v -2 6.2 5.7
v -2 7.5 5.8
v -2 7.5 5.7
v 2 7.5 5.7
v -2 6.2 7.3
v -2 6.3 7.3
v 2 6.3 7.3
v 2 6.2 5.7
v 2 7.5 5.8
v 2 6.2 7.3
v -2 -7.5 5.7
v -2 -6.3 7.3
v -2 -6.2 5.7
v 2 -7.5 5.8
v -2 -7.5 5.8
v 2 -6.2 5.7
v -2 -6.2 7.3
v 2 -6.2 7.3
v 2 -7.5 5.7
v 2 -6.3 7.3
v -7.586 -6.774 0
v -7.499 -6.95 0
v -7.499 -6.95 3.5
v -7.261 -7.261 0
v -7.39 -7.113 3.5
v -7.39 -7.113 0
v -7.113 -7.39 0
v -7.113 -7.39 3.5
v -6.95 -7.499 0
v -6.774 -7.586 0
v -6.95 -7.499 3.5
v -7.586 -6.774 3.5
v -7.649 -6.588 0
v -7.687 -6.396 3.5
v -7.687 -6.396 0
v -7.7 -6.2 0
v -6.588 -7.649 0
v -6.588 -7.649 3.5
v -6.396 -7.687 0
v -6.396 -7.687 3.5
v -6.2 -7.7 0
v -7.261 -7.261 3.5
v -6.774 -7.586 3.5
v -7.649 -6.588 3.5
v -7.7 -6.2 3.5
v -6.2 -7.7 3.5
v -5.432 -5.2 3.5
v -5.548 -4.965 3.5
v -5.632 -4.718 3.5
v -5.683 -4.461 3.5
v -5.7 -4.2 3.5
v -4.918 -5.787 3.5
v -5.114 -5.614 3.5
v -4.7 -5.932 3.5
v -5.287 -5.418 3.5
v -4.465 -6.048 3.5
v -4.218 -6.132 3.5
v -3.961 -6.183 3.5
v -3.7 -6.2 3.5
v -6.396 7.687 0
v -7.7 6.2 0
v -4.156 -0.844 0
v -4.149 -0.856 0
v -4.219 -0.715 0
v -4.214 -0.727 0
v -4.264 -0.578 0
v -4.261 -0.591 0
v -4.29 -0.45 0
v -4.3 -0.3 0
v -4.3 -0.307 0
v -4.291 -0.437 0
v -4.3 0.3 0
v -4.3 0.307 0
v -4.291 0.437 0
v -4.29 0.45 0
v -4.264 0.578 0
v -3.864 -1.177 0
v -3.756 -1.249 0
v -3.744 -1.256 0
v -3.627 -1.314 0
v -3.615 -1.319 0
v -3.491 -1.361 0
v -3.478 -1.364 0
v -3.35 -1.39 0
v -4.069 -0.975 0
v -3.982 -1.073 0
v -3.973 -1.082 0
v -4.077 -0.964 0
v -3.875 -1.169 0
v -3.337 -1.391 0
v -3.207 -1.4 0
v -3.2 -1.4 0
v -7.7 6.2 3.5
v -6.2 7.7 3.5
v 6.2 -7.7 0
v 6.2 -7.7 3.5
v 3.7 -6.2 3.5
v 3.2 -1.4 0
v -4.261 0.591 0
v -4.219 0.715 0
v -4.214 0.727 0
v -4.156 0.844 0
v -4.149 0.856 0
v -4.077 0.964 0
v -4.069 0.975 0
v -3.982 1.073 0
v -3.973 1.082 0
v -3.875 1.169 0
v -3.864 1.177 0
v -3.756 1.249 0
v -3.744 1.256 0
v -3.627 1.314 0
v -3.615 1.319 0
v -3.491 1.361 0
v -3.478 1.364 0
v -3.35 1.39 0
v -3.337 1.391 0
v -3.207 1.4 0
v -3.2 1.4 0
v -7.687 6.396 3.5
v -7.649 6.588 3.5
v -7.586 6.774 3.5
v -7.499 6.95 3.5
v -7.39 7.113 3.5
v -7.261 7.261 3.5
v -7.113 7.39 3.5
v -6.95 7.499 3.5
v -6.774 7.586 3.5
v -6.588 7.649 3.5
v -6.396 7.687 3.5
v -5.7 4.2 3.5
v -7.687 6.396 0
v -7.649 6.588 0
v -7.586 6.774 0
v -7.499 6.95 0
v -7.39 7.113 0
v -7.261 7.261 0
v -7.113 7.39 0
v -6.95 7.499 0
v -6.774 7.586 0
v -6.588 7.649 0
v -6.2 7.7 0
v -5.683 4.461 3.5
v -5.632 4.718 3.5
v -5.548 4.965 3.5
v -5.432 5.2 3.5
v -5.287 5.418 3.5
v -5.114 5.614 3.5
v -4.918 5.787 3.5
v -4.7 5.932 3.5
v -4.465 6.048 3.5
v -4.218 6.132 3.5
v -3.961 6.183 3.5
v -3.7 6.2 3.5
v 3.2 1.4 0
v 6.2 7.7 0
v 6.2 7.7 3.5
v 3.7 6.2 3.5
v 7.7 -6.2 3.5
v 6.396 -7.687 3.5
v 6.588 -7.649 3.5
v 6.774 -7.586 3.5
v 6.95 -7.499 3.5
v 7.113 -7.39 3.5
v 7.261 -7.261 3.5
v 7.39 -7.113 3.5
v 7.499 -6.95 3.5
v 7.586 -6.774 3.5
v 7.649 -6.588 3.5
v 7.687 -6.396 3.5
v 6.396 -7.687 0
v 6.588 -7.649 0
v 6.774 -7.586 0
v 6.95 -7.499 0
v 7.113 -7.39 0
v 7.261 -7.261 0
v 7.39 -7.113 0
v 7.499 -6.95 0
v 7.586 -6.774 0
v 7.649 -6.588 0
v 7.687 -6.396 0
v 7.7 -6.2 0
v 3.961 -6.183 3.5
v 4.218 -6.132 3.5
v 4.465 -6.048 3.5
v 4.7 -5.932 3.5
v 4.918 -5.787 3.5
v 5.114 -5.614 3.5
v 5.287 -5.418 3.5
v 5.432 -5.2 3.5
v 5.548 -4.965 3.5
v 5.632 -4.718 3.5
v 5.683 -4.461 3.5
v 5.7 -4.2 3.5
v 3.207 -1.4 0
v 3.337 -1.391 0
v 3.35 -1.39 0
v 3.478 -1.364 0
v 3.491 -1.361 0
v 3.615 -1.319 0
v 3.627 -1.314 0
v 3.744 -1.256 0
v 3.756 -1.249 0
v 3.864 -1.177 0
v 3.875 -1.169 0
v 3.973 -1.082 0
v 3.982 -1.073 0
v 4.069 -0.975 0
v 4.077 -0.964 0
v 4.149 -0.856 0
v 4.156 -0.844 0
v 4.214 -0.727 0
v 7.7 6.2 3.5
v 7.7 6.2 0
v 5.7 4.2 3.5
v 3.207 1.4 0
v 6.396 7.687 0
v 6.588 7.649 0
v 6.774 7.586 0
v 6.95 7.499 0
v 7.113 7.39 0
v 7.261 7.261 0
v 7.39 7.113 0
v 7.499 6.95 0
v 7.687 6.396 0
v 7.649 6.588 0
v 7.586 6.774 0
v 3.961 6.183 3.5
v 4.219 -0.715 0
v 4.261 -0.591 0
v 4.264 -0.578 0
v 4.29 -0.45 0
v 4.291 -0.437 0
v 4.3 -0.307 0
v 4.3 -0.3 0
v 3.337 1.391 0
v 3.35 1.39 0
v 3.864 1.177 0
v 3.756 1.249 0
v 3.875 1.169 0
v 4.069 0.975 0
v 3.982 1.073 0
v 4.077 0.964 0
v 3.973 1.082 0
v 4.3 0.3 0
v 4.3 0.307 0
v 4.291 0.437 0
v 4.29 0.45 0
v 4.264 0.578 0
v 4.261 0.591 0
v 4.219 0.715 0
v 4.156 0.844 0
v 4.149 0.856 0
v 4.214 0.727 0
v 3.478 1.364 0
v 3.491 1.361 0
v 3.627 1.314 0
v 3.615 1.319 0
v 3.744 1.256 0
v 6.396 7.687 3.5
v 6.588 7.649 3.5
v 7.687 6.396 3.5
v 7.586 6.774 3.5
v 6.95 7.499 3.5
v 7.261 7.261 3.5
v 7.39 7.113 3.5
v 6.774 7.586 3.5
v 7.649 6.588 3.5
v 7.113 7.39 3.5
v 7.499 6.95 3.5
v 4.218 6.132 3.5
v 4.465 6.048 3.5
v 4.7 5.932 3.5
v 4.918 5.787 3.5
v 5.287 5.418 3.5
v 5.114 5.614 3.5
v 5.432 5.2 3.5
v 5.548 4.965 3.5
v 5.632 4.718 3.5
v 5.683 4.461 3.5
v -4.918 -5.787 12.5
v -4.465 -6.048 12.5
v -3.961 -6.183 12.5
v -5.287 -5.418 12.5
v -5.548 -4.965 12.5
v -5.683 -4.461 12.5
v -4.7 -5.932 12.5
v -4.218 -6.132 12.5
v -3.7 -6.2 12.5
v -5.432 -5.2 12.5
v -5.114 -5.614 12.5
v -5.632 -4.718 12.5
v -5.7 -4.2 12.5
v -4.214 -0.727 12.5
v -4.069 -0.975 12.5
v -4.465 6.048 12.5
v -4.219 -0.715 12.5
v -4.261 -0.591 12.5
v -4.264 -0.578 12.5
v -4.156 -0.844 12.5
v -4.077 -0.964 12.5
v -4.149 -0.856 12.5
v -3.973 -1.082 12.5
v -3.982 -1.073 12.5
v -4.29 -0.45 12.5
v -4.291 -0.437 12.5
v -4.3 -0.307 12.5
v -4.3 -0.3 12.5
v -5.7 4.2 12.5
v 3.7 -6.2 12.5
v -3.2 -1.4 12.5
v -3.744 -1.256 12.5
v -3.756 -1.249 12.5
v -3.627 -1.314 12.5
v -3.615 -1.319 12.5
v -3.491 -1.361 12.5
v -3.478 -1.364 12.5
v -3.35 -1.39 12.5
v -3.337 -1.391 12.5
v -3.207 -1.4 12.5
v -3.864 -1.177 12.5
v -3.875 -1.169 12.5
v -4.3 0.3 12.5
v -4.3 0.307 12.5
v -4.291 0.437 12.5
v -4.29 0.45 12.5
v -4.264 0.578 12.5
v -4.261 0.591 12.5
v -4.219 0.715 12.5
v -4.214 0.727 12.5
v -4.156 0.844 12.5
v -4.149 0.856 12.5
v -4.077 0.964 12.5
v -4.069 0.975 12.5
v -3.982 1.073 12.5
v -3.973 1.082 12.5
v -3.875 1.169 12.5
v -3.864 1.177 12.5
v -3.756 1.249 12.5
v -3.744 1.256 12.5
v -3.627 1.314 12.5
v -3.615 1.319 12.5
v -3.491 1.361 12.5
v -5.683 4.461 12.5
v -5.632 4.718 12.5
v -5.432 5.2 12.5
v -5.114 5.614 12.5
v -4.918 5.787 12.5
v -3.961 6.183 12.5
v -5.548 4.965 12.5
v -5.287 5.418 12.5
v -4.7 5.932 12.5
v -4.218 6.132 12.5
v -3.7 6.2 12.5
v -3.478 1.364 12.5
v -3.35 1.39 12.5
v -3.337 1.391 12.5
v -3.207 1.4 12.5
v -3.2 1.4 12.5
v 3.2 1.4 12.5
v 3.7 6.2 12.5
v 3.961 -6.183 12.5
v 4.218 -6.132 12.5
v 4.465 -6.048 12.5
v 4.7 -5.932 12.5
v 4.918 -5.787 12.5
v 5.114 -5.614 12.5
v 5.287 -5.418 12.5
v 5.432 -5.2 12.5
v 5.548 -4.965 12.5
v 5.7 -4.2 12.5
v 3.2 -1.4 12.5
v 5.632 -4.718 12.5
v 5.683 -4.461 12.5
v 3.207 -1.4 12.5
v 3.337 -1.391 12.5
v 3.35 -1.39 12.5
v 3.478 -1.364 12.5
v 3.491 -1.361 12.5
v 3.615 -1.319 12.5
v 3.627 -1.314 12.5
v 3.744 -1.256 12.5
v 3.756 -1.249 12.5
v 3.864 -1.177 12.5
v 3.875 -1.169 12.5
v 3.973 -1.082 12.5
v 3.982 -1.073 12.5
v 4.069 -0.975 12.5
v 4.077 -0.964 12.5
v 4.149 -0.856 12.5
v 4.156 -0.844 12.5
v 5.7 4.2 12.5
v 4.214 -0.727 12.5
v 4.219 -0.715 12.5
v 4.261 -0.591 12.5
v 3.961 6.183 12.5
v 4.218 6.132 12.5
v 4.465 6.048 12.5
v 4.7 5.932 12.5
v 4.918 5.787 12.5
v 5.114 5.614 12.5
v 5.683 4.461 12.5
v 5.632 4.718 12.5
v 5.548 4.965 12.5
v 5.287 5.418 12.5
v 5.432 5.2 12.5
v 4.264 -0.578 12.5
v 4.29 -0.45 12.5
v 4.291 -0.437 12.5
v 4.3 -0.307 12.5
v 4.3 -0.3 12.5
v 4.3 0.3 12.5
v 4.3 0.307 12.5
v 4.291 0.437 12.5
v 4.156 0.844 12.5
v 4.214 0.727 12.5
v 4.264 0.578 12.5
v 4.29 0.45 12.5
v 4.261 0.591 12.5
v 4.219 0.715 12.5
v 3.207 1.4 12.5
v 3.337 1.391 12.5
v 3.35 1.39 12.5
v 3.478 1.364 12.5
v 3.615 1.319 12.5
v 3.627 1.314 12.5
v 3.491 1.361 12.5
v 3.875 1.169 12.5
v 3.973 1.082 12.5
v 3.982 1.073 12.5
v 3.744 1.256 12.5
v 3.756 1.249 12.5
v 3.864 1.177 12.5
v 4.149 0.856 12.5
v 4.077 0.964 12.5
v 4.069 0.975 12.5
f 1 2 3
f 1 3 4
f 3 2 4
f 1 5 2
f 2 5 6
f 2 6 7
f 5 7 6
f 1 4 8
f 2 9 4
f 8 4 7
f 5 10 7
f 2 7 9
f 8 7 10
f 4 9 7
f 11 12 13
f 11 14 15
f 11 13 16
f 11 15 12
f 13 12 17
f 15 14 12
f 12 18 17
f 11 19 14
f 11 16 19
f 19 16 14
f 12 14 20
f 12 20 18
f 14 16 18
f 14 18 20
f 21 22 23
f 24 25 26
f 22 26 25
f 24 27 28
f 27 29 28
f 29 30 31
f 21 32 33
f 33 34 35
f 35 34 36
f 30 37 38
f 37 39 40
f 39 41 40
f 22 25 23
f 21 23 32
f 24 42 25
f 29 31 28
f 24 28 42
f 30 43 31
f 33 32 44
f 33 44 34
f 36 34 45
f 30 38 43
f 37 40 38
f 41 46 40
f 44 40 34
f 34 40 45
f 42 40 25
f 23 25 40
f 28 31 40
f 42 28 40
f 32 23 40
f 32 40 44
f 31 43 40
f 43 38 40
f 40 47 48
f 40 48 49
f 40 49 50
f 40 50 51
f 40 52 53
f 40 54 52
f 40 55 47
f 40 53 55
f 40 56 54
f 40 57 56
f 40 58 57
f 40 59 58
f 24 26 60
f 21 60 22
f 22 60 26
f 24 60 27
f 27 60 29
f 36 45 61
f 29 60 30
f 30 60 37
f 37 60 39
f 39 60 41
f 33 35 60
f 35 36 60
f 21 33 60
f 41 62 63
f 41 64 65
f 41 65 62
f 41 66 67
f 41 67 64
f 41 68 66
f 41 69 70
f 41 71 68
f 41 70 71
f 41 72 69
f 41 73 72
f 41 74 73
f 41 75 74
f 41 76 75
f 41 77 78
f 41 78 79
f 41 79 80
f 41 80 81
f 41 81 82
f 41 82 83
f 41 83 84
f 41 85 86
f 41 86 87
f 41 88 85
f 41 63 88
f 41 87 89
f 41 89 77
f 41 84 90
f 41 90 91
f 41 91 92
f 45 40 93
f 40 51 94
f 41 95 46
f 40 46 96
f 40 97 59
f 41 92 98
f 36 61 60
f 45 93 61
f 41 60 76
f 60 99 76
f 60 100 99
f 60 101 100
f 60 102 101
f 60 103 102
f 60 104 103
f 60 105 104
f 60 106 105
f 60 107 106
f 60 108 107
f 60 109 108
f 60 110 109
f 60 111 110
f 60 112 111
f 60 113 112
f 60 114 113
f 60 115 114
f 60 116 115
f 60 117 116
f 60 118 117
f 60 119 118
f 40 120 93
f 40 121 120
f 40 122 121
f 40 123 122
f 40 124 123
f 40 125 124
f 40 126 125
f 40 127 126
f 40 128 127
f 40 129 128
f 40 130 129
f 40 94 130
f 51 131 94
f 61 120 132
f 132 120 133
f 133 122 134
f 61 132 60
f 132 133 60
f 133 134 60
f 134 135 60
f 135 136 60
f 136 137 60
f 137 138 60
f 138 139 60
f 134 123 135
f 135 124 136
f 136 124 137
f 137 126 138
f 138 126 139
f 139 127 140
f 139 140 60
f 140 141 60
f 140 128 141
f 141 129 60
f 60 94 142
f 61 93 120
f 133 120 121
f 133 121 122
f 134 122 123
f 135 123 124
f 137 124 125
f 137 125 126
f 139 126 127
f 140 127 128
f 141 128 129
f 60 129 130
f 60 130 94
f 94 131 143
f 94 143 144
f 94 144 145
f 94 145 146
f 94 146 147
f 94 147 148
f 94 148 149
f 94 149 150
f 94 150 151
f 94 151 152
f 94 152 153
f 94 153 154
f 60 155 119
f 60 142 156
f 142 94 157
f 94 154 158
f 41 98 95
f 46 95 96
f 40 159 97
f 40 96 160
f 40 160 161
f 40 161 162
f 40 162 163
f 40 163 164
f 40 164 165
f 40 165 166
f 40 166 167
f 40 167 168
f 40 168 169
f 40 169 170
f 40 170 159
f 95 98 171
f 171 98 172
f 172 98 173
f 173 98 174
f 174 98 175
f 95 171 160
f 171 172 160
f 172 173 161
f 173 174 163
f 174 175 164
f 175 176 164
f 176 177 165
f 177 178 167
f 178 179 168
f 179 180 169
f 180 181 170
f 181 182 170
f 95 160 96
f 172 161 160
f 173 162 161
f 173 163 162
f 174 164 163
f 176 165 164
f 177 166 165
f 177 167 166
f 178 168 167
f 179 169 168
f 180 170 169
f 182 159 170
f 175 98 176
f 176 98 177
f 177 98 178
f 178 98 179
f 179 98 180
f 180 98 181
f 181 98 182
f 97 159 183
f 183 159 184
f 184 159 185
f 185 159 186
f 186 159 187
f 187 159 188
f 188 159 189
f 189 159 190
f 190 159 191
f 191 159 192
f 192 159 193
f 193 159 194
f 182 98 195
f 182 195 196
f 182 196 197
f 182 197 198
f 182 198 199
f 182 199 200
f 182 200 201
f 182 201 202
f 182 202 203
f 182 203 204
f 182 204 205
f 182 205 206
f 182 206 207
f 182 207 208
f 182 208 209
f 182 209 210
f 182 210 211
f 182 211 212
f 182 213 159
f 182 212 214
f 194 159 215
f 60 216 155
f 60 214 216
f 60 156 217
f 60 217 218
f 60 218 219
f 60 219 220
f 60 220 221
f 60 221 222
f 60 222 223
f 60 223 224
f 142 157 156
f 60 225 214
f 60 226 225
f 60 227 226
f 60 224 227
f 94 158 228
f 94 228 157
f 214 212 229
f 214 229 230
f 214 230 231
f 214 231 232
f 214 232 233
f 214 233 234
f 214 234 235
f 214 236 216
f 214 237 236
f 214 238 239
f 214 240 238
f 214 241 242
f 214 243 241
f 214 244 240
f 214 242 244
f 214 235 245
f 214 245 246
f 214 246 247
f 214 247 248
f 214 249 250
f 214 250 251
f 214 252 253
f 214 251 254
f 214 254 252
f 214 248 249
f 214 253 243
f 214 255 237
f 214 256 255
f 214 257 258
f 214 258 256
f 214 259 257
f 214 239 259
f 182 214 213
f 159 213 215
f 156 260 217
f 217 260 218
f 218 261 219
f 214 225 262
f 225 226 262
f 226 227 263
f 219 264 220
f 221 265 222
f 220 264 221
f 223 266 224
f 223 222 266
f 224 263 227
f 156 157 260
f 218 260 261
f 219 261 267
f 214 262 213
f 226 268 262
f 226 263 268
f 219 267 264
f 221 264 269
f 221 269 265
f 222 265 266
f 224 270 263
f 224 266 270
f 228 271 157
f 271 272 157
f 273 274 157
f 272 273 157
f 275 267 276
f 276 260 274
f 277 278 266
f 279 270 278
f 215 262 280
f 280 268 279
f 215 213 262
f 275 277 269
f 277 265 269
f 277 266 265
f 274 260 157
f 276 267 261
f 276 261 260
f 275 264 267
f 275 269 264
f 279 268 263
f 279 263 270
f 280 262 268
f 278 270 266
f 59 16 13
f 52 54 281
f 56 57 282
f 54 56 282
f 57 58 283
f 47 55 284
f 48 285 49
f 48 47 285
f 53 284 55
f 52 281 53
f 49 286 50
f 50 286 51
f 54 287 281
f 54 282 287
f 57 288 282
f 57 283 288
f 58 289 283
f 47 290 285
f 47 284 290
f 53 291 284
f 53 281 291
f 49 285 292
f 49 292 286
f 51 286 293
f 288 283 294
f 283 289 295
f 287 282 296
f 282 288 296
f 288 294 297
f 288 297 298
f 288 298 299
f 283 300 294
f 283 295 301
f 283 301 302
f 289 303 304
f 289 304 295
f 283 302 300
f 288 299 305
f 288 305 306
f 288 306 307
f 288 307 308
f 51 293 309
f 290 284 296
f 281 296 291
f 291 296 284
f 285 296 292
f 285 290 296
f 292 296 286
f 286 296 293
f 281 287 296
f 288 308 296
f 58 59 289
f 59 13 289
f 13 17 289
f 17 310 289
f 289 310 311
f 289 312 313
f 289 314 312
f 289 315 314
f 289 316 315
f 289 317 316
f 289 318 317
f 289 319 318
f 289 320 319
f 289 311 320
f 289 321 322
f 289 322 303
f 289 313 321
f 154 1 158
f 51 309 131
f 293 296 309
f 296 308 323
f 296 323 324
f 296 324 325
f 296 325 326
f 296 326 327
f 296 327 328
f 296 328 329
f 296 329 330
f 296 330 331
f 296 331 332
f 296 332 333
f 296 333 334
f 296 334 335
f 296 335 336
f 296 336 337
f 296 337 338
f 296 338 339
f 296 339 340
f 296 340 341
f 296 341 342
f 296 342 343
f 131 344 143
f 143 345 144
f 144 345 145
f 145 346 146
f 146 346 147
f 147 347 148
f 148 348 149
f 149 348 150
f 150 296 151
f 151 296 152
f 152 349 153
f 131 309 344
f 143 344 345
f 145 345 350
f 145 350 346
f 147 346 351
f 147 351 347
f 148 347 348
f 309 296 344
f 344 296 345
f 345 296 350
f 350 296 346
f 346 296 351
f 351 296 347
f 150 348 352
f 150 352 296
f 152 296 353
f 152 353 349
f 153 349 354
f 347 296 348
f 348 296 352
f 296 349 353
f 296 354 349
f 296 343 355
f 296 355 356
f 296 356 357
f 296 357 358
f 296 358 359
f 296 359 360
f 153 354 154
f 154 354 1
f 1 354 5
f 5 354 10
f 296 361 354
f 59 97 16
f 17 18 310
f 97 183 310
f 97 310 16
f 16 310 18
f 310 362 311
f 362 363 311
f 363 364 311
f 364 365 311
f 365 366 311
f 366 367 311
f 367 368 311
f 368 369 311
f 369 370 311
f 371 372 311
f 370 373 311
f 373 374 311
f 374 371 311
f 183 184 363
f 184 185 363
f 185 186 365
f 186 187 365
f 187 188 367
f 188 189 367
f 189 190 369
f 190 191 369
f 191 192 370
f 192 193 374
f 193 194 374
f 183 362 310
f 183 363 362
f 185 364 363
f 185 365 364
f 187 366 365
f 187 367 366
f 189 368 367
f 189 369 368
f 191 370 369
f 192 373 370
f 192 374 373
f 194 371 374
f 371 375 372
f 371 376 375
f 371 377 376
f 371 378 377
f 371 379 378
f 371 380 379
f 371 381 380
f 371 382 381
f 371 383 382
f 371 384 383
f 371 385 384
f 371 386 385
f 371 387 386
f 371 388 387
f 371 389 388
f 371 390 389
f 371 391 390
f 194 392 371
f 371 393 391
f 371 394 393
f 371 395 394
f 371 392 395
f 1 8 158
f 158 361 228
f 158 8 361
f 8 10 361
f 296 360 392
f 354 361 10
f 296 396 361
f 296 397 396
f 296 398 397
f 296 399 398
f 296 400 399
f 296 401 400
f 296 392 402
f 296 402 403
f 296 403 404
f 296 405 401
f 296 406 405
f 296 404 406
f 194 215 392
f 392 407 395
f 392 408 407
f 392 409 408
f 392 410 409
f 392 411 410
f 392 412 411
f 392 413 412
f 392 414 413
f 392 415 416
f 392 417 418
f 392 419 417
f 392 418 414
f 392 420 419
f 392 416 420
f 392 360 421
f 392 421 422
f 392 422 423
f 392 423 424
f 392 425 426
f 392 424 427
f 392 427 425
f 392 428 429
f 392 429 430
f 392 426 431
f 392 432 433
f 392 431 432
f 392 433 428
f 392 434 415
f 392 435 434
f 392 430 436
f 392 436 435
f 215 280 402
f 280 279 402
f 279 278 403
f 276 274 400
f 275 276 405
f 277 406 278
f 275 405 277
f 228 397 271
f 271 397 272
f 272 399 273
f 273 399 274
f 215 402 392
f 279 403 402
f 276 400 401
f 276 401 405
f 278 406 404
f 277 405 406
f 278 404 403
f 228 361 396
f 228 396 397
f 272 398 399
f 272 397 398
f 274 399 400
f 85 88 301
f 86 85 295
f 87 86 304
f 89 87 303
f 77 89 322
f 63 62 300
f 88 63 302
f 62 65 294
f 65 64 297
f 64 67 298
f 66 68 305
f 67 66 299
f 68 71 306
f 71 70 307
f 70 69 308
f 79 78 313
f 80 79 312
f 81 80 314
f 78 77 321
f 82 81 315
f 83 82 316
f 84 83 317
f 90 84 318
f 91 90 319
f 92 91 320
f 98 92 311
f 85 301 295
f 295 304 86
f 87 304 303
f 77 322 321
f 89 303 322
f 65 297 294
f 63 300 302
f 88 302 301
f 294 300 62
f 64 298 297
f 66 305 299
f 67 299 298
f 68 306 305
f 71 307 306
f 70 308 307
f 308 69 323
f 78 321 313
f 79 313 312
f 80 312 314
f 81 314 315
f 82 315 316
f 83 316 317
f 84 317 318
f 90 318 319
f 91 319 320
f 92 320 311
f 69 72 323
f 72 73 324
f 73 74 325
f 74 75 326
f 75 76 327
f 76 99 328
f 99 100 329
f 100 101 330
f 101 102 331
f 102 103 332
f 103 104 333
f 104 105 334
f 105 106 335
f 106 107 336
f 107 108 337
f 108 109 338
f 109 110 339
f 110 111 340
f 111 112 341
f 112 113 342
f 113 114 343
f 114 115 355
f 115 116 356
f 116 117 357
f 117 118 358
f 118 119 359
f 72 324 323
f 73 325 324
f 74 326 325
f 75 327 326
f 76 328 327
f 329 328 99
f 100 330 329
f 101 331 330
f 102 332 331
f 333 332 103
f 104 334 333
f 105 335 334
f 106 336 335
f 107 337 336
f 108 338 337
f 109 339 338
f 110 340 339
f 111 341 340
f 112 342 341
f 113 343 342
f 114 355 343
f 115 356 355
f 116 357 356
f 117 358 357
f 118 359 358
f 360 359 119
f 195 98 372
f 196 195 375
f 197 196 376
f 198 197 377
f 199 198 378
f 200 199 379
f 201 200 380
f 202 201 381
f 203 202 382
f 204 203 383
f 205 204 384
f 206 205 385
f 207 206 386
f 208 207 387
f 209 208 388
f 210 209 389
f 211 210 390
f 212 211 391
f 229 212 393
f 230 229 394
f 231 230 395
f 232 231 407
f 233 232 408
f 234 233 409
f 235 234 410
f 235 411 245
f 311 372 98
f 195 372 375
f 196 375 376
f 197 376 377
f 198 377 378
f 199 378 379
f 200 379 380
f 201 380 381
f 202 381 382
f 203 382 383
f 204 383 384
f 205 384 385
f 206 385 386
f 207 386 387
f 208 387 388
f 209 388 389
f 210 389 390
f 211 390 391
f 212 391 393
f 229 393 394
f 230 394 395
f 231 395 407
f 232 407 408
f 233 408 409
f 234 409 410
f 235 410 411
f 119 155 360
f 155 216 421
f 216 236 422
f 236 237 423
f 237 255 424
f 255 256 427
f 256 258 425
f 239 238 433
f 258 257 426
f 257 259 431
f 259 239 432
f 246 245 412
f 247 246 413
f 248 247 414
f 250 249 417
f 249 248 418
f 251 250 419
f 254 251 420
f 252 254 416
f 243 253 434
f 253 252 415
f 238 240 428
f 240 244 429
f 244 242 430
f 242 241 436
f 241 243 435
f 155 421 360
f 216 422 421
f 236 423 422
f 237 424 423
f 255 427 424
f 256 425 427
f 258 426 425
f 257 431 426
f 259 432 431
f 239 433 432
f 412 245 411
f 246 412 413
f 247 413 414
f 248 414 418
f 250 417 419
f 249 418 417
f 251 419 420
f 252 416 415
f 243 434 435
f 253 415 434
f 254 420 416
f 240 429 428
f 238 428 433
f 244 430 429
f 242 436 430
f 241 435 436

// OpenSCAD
// file: parameters.scad
// ============================================
// MODULAR CABLE ORGANIZER - SHARED PARAMETERS
// ============================================
// All dimensions in mm - include this in all files
// ============================================

$fn = 48;

// === TOLERANCES ===
clearance = 0.3;
port_clearance = 0.1;  // Extra clearance for port openings (reduced - 0.2 was too loose for USB-C)
wall = 1.6;

// === SLOT DIMENSIONS (2:1 aspect ratio) - scaled to 2/3 ===
slot_width = 32;  // Standard wide slot for larger connectors
slot_width_narrow = 16;  // Narrow slot for compact connectors (USB-C, micro-USB, USB-A, Lightning, 3.5mm)
slot_height = 16;  // Height is same for both wide and narrow
slot_depth = 4;  // Reduced from 6mm - less frame depth needed

// === FRAME STRUCTURE ===
frame_wall = 2.0;   // Wall between slots - 6 layers @ 0.4mm nozzle for strength
frame_border = 6;  // Increased by 10mm for mounting holes with countersink
frame_back = 2;     // Slightly thicker for snap catch strength
mount_hole_dia = 3;
countersink_dia = 6;  // Diameter of countersink for screw heads
countersink_depth = 2;  // Depth of countersink

// === DEFAULT GRID (can be overridden in individual files) ===
grid_cols = 2;
grid_rows = 2;

// === INSERT BASE DIMENSIONS ===
insert_width = slot_width - (2 * clearance);
insert_height = slot_height - (2 * clearance);
insert_base_depth = slot_depth - 0.5;

// === NARROW INSERT BASE DIMENSIONS ===
insert_width_narrow = slot_width_narrow - (2 * clearance);
insert_height_narrow = slot_height - (2 * clearance);

// === INSERT BODY (protrudes from frame) ===
insert_body_width = insert_width - 4;
insert_body_height = insert_height - 3;
insert_body_depth = 12;  // Deep enough to accommodate male cable connectors
insert_top_thick = 1.5;  // Top platform thickness

// === NARROW INSERT BODY (protrudes from frame) ===
insert_body_width_narrow = insert_width_narrow - 4;
insert_body_height_narrow = insert_height_narrow - 3;

// === SNAP TABS (on neck/body - catch on back plate) ===
snap_tab_width = 4;
snap_tab_protrude = 1.2;  // How far tab sticks out from body
snap_tab_thick = 1.5;     // Z thickness of tab
snap_tab_offset = 2.2;      // Distance from base to tab bottom on insert (increased to clear frame)

// === CONNECTOR PORT DIMENSIONS & BODY DEPTHS ===
// Port dimensions from reference blueprints
// Body depths sized to match typical male connector lengths

// USB-C: 8.4 x 2.6mm, male connector ~9mm
usbc_w = 8.4;
usbc_h = 2.6;
usbc_r = 1.0;
usbc_body_depth = 9;

// USB-A: 12.0 x 4.5mm (tighter fit based on test print)
usba_w = 12.0;
usba_h = 4.5;
usba_r = 0.5;
usba_body_depth = 13;

// USB Mini: 6.9 x 3.0mm, male connector ~9mm
usb_mini_w = 6.9;
usb_mini_h = 3.0;
usb_mini_r = 0.5;
usb_mini_body_depth = 9;

// USB Micro-B: 7.0 x 1.8mm (tighter fit based on test print)
usb_micro_w = 7.0;
usb_micro_h = 1.8;
usb_micro_r = 0.3;
usb_micro_body_depth = 7;

// USB-B: 8.4 x 7.6mm (printer/keyboard style connector)
usb_b_w = 8.4;
usb_b_h = 7.6;
usb_b_r = 0.8;
usb_b_body_depth = 14;

// Lightning: 7.6 x 1.5mm, male connector ~8mm (measured from actual connector)
lightning_w = 7.6;
lightning_h = 1.5;
lightning_r = 0.5;
lightning_body_depth = 8;

// HDMI: 13.9 x 4.45mm (adjusted taper for better fit)
hdmi_w = 13.9;
hdmi_h = 4.45;
hdmi_r = 0.5;
hdmi_body_depth = 16;

// 3.5mm Audio Jack: male plug ~14mm (3.5mm = ~3.5mm, but use 3.6mm for snug fit)
audio_jack_dia = 3.6;
audio_jack_body_depth = 14;

// Blank/Label: recessed area for label
label_w = 30;
label_h = 12;
label_depth = 0.8;

// === CALCULATED VALUES ===
frame_total_depth = frame_back + slot_depth;
grid_width = (grid_cols * slot_width) + ((grid_cols - 1) * frame_wall);
grid_height = (grid_rows * slot_height) + ((grid_rows - 1) * frame_wall);
frame_width = grid_width + (2 * frame_border);
frame_height_total = grid_height + (2 * frame_border);
insert_total_depth = insert_base_depth + insert_body_depth;
// main file
// ============================================
// PRINT FILE: USB-C Insert (NARROW)
// ============================================
// Narrow width version for space-efficient frames
// Print with base down (no supports needed)
// ============================================

include <insert_base.scad>

// Render narrow USB-C insert
insert_usbc_narrow();
